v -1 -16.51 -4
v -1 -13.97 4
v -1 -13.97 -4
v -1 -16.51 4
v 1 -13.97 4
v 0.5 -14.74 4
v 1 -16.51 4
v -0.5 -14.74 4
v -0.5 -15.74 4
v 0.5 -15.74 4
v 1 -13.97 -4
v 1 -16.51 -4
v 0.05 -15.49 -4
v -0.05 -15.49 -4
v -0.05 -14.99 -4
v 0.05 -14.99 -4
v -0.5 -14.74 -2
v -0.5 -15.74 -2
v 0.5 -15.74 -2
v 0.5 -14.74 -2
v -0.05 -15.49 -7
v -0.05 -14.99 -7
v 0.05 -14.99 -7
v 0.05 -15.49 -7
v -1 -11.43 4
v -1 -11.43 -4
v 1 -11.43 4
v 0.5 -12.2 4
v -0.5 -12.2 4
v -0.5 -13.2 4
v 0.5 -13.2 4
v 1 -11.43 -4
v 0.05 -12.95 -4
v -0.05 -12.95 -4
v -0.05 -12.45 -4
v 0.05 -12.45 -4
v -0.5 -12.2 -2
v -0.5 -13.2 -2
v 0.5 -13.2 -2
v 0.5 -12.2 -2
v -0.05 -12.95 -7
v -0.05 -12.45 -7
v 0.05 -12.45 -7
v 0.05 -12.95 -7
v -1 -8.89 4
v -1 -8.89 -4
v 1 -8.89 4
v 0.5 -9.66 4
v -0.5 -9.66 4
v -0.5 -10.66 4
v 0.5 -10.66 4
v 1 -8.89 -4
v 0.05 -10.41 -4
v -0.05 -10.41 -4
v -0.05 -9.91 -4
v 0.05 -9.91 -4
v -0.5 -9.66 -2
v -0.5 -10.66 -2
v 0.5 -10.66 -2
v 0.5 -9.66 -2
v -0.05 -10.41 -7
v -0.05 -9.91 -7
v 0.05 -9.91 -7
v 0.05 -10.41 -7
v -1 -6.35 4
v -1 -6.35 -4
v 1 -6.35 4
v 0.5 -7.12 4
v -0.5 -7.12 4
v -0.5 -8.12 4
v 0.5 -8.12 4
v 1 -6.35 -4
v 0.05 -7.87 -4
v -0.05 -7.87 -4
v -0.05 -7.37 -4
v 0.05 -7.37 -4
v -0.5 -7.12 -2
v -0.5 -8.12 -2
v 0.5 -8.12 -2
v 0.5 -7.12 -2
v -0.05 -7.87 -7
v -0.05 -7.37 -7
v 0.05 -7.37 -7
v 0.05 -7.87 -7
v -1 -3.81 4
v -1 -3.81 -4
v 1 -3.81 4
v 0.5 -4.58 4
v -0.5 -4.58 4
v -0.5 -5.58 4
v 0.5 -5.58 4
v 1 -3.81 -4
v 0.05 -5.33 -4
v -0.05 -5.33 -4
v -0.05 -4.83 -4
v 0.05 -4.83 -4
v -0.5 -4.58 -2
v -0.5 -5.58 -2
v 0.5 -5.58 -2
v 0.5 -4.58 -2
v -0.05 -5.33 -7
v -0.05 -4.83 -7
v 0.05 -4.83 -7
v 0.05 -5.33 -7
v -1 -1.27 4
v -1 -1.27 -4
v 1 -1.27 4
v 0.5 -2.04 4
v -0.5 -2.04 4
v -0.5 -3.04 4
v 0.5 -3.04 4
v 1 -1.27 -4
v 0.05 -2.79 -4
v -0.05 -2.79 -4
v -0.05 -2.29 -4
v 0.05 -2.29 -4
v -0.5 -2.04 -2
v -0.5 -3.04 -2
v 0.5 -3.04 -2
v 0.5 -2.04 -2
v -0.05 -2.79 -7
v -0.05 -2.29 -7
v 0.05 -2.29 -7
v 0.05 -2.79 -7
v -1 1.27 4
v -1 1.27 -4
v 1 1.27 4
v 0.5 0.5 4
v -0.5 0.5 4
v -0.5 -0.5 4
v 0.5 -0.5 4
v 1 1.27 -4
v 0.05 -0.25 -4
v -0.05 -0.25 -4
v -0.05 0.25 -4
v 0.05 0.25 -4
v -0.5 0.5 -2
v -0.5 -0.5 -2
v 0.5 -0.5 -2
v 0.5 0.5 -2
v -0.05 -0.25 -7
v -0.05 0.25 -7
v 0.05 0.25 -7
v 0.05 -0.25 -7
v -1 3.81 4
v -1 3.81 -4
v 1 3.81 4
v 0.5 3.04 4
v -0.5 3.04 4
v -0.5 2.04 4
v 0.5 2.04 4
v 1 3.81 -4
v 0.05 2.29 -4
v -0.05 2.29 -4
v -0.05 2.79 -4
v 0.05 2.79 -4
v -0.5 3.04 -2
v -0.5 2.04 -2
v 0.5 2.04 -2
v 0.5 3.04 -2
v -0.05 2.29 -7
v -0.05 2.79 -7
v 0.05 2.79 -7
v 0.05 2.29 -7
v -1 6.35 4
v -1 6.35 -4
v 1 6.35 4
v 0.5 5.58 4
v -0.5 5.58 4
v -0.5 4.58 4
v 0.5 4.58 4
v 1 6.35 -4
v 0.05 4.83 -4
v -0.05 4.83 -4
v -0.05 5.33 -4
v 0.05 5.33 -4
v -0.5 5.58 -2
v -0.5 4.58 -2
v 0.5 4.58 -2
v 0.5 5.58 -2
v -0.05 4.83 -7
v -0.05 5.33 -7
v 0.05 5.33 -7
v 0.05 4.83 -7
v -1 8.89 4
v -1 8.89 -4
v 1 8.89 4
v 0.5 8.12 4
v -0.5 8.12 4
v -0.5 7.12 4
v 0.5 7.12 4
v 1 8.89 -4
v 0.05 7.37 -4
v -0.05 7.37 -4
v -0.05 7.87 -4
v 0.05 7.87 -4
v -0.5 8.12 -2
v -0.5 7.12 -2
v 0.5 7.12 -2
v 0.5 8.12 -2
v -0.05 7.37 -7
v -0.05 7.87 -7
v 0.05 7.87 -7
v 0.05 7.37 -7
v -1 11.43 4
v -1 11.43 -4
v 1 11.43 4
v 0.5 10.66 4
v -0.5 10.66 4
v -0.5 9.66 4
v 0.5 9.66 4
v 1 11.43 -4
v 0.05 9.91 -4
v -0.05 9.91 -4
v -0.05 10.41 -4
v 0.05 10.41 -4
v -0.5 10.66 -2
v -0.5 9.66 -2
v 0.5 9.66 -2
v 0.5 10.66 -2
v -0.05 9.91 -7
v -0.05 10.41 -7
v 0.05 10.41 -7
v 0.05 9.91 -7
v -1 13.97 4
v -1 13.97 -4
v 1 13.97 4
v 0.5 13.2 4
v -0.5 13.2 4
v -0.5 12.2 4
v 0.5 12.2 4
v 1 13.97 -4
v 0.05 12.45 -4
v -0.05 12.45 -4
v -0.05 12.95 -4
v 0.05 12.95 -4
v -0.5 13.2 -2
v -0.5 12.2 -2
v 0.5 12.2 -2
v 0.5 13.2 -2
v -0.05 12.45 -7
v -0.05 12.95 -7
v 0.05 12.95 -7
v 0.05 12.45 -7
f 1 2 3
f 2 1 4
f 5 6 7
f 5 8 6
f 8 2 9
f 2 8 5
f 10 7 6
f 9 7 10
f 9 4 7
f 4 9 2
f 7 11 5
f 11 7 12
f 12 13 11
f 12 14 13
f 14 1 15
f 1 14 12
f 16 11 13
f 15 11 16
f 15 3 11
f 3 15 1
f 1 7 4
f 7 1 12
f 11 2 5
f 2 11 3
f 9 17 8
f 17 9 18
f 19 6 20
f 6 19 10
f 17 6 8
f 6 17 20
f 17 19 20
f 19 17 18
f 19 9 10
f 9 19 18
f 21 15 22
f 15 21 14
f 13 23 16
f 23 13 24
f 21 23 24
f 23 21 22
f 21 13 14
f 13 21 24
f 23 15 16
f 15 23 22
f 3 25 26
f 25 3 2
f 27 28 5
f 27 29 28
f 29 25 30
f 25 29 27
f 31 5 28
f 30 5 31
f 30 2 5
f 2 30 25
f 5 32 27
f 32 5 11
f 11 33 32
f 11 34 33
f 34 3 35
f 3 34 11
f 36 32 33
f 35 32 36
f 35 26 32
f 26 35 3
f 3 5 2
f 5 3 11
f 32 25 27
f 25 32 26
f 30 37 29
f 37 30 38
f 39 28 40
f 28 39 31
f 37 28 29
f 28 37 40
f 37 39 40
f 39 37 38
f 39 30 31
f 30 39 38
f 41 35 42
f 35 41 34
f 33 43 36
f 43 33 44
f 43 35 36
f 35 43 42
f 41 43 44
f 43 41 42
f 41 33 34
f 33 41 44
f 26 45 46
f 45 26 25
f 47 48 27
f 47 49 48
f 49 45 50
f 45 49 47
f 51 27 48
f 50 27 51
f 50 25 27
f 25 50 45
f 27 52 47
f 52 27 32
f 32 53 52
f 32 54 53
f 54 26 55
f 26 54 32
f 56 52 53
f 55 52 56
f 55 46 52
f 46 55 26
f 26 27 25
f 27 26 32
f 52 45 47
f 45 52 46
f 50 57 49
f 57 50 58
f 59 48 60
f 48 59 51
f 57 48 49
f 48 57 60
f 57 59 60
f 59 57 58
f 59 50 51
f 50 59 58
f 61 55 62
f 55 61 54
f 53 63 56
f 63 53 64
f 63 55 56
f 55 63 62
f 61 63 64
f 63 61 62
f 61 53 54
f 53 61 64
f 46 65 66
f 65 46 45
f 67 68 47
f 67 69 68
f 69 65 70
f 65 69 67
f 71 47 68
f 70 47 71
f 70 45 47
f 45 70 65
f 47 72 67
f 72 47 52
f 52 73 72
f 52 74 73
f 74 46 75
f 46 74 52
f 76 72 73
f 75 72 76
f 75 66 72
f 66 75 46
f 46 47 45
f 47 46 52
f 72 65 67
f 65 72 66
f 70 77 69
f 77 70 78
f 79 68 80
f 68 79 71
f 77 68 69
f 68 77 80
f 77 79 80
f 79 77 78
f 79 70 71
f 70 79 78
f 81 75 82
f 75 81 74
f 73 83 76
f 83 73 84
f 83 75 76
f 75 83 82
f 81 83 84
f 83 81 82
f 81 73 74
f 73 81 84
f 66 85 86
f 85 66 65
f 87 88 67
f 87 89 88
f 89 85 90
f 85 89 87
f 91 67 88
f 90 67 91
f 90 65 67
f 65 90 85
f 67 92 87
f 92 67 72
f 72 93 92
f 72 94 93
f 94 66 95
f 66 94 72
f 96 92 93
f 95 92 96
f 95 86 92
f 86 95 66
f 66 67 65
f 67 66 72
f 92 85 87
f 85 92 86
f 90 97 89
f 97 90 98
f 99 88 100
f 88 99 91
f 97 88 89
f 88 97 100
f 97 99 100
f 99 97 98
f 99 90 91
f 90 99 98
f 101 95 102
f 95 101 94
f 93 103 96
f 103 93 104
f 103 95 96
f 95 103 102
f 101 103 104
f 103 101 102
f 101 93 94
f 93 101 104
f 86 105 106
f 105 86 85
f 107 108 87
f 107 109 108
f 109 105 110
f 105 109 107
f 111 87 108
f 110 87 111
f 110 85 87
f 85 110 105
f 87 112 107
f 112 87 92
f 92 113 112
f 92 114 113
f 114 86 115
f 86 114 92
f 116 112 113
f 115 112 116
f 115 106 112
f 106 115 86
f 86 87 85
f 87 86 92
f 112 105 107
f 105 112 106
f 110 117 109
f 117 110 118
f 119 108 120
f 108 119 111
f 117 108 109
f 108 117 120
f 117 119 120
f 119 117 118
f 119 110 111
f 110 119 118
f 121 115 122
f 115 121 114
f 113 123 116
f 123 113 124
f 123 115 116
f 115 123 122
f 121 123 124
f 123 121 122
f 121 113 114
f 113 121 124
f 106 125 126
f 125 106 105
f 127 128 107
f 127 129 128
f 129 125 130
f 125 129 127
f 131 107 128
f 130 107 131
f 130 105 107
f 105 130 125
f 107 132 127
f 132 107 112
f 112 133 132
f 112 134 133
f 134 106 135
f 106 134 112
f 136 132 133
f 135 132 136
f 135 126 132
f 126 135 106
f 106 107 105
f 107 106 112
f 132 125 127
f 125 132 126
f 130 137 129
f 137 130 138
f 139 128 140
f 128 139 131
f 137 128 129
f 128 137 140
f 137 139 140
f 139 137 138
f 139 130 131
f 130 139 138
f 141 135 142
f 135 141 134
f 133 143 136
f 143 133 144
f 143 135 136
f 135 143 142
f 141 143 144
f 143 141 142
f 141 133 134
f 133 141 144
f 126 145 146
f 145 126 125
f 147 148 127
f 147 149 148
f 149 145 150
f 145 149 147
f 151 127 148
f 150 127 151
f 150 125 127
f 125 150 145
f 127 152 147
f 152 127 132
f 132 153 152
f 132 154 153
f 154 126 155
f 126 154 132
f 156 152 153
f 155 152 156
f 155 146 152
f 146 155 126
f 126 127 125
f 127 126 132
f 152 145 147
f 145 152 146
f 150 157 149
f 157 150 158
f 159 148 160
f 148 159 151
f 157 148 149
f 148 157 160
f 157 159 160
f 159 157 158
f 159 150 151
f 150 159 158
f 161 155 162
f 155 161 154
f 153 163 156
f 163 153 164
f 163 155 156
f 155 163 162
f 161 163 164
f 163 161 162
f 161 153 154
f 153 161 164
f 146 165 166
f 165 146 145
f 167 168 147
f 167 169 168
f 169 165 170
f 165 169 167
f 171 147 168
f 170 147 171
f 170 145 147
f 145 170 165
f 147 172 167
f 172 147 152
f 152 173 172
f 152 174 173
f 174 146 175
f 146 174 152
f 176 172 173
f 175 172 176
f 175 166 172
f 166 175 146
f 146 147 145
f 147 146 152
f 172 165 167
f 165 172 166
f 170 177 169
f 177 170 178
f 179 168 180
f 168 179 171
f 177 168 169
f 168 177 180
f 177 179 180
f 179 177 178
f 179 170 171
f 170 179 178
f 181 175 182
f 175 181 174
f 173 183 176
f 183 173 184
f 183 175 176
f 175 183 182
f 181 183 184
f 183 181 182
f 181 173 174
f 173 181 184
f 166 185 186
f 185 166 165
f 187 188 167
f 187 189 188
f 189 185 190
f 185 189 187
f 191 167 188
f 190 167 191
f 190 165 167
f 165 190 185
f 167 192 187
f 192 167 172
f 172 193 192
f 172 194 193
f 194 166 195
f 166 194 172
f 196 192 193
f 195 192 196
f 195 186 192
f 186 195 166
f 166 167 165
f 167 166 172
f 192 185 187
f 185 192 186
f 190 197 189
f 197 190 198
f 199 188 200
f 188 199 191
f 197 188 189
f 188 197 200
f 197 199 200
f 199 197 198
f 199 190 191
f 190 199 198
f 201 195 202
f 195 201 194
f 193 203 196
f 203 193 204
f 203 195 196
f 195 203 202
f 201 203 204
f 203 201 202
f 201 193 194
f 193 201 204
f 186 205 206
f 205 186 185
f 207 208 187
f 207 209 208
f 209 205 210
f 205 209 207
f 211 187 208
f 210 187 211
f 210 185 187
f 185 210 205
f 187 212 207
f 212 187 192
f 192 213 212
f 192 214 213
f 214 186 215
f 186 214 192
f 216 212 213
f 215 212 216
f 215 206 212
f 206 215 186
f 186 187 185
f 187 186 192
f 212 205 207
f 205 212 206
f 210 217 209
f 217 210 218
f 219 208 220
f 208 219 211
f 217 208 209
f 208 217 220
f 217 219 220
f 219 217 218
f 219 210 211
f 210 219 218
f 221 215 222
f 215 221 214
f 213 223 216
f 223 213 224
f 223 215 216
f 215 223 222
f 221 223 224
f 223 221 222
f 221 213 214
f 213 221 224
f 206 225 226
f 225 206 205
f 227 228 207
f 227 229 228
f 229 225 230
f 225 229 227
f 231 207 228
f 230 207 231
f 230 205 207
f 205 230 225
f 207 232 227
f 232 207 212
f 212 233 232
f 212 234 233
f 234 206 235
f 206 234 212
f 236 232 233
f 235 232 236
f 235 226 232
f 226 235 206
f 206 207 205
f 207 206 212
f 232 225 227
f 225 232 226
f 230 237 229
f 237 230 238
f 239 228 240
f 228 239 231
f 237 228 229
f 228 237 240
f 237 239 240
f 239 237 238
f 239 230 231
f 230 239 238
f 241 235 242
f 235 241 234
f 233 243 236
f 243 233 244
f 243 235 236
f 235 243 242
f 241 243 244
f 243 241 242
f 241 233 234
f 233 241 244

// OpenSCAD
module pins(numPins){
  space=2.54;
  translate([0,-(space*numPins)/2])
  union(){
    for (i=[0:numPins-1]) {
      translate([0,i*space,0]){
        difference(){
          cube([2,space,8],center=true);
          translate([0,0,2])cube([1,1,8],center=true);
        }
        translate([0,0,-5.5])cube([0.1,0.5,3],center=true);
      } 
    }
  }
}

pins(12);
